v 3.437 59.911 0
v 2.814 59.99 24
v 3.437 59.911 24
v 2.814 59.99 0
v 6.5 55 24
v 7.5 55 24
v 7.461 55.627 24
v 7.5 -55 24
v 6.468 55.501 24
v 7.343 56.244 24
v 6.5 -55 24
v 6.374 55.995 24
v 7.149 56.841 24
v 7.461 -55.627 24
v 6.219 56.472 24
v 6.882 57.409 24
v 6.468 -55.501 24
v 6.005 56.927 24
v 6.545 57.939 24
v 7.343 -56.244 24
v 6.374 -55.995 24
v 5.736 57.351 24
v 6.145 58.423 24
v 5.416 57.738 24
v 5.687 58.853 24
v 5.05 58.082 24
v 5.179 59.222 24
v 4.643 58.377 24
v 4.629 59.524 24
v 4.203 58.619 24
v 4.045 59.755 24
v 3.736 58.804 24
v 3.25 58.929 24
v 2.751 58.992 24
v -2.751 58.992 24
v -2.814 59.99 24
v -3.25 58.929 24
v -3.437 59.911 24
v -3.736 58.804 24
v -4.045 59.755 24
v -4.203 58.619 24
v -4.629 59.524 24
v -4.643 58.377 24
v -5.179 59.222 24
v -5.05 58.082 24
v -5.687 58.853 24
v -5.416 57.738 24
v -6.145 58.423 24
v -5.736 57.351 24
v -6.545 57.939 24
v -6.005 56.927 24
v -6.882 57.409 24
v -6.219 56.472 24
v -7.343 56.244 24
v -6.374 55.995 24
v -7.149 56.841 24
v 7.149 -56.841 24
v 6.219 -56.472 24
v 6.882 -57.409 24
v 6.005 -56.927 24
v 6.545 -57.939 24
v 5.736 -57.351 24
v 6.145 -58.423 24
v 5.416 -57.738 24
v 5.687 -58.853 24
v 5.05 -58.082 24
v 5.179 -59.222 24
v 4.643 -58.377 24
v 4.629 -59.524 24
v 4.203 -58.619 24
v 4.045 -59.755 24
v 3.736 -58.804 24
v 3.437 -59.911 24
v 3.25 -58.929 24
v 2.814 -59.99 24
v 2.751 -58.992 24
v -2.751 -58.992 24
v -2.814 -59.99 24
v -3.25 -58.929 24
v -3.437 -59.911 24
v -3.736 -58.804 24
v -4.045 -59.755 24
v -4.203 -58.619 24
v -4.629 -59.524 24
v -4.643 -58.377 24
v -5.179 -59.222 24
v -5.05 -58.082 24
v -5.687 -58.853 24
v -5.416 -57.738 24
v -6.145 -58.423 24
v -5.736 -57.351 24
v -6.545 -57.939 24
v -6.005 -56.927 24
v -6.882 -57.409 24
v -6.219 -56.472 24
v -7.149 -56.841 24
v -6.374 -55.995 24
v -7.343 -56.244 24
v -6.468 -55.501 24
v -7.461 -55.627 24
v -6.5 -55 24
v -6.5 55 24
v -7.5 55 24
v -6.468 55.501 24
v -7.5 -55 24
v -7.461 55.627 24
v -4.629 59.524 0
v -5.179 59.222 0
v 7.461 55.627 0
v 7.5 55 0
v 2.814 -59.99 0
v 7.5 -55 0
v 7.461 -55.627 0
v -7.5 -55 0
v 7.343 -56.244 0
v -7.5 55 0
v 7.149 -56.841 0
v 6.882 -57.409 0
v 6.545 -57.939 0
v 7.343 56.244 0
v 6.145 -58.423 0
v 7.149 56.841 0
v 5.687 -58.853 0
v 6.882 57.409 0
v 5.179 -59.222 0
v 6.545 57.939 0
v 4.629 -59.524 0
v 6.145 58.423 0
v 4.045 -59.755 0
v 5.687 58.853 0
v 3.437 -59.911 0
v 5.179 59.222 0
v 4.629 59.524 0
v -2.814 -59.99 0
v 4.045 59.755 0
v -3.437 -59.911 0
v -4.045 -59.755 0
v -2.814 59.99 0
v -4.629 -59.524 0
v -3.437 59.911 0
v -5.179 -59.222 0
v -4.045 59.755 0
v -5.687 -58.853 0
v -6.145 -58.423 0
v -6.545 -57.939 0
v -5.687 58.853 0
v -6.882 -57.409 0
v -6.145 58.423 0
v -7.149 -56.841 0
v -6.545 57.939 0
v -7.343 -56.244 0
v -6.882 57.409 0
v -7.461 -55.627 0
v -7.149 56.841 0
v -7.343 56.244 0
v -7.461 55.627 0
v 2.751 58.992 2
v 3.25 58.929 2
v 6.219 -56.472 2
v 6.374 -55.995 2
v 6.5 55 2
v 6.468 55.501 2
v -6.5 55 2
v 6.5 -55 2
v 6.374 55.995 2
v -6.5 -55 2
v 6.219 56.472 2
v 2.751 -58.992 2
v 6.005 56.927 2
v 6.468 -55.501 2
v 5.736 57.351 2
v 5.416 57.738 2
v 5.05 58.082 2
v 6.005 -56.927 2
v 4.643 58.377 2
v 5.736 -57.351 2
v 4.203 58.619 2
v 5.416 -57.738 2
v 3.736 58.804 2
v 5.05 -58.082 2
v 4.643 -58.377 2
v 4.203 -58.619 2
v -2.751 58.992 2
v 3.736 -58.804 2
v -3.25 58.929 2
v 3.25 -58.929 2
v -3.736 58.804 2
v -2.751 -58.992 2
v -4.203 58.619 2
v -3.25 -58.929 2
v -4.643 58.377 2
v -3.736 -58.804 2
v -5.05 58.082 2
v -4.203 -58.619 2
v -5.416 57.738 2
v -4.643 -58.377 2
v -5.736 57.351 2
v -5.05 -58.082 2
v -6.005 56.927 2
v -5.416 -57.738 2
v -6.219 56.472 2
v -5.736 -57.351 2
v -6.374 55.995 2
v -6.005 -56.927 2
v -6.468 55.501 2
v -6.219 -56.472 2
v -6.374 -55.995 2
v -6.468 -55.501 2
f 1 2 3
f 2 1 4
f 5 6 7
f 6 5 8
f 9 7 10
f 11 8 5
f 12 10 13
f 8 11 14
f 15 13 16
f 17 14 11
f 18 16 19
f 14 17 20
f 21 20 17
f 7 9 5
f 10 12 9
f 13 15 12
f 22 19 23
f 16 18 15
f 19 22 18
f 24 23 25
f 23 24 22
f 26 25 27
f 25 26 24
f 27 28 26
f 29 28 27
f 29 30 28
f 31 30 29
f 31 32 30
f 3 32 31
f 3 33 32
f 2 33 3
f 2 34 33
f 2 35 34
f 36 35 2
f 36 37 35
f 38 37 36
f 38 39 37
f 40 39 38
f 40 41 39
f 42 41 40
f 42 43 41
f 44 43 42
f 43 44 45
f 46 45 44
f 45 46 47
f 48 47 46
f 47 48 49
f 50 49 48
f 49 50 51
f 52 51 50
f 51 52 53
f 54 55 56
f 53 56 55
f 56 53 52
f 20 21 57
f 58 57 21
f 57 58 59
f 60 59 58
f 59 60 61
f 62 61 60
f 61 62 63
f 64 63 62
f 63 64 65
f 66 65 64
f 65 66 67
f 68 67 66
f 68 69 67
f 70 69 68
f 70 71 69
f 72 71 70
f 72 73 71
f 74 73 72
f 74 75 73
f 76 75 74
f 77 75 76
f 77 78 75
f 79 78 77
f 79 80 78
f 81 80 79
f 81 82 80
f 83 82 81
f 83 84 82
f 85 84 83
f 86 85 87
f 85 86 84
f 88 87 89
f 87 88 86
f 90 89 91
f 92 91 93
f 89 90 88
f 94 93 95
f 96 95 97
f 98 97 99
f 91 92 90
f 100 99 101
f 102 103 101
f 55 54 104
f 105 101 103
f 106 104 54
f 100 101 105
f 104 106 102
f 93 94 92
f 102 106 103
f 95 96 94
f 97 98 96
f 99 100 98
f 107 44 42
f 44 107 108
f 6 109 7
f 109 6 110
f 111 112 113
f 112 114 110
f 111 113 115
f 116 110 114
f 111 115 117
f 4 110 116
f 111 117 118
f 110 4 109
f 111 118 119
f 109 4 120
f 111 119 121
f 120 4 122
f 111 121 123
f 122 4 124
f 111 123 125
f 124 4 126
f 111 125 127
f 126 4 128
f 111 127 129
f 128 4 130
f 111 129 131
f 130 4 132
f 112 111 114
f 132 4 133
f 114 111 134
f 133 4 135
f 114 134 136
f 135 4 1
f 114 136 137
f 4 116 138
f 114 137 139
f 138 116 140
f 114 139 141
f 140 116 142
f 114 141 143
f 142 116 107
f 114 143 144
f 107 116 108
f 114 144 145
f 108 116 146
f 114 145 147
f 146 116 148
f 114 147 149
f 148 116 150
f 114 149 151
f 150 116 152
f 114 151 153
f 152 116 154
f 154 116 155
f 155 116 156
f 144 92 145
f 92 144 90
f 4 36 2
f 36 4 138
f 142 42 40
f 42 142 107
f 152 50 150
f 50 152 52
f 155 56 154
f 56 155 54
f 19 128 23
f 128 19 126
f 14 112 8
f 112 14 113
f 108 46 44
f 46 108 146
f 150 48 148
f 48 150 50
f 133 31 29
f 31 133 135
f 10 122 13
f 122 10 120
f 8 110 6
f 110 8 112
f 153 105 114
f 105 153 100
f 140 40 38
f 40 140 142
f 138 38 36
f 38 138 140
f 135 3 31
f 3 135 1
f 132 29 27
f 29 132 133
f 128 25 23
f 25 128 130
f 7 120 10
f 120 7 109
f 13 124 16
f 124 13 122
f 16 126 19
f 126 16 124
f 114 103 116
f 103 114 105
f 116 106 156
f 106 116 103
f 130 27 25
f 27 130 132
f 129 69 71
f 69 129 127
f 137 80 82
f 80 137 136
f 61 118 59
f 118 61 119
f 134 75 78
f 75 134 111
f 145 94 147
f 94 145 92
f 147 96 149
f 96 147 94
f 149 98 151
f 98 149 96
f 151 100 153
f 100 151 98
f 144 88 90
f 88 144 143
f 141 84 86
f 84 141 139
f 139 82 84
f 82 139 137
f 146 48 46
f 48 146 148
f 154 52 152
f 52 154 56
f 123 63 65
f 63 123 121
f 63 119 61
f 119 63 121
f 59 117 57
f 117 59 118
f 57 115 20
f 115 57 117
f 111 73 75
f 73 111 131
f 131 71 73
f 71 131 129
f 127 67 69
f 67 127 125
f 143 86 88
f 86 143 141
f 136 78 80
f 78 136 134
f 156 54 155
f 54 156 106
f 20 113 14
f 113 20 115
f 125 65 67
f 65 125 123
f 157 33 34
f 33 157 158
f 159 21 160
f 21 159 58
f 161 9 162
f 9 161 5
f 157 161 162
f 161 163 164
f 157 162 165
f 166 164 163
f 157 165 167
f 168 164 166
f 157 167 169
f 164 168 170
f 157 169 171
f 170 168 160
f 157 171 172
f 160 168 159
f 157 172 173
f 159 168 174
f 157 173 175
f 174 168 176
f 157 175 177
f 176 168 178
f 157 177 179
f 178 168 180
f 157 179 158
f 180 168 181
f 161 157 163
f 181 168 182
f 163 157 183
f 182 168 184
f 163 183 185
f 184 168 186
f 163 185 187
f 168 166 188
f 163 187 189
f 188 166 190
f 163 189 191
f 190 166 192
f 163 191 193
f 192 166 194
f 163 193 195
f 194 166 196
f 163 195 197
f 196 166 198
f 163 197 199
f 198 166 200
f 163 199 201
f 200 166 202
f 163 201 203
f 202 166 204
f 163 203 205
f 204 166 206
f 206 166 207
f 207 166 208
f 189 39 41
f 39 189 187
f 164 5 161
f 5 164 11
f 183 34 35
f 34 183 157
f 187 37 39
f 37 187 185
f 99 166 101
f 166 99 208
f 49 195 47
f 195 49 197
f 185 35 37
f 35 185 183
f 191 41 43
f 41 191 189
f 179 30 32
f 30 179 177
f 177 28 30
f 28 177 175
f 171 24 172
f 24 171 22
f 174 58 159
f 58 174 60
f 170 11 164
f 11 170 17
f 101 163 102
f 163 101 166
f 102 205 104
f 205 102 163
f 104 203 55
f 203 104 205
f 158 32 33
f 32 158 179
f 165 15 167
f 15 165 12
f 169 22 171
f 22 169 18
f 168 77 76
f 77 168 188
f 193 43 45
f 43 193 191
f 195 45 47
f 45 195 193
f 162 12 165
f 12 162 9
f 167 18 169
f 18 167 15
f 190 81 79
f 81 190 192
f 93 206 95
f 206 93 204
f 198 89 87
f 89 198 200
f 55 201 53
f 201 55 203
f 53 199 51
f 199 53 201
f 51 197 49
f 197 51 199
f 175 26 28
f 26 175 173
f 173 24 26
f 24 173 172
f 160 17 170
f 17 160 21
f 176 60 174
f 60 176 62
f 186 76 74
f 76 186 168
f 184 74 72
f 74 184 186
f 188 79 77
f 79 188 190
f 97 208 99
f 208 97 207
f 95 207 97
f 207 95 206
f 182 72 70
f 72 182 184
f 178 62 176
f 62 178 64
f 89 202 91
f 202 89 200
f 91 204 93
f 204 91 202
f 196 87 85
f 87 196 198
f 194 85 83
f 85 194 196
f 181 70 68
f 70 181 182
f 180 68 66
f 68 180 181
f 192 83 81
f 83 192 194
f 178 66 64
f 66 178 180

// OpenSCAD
$fn = 50;


difference() {
	union() {
		hull() {
			translate(v = [-2.5000000000, 55.0000000000, 0]) {
				cylinder(h = 24, r = 5);
			}
			translate(v = [2.5000000000, 55.0000000000, 0]) {
				cylinder(h = 24, r = 5);
			}
			translate(v = [-2.5000000000, -55.0000000000, 0]) {
				cylinder(h = 24, r = 5);
			}
			translate(v = [2.5000000000, -55.0000000000, 0]) {
				cylinder(h = 24, r = 5);
			}
		}
	}
	union() {
		translate(v = [0, 0, 2]) {
			hull() {
				translate(v = [-2.5000000000, 55.0000000000, 0]) {
					cylinder(h = 22, r = 4);
				}
				translate(v = [2.5000000000, 55.0000000000, 0]) {
					cylinder(h = 22, r = 4);
				}
				translate(v = [-2.5000000000, -55.0000000000, 0]) {
					cylinder(h = 22, r = 4);
				}
				translate(v = [2.5000000000, -55.0000000000, 0]) {
					cylinder(h = 22, r = 4);
				}
			}
		}
	}
}
